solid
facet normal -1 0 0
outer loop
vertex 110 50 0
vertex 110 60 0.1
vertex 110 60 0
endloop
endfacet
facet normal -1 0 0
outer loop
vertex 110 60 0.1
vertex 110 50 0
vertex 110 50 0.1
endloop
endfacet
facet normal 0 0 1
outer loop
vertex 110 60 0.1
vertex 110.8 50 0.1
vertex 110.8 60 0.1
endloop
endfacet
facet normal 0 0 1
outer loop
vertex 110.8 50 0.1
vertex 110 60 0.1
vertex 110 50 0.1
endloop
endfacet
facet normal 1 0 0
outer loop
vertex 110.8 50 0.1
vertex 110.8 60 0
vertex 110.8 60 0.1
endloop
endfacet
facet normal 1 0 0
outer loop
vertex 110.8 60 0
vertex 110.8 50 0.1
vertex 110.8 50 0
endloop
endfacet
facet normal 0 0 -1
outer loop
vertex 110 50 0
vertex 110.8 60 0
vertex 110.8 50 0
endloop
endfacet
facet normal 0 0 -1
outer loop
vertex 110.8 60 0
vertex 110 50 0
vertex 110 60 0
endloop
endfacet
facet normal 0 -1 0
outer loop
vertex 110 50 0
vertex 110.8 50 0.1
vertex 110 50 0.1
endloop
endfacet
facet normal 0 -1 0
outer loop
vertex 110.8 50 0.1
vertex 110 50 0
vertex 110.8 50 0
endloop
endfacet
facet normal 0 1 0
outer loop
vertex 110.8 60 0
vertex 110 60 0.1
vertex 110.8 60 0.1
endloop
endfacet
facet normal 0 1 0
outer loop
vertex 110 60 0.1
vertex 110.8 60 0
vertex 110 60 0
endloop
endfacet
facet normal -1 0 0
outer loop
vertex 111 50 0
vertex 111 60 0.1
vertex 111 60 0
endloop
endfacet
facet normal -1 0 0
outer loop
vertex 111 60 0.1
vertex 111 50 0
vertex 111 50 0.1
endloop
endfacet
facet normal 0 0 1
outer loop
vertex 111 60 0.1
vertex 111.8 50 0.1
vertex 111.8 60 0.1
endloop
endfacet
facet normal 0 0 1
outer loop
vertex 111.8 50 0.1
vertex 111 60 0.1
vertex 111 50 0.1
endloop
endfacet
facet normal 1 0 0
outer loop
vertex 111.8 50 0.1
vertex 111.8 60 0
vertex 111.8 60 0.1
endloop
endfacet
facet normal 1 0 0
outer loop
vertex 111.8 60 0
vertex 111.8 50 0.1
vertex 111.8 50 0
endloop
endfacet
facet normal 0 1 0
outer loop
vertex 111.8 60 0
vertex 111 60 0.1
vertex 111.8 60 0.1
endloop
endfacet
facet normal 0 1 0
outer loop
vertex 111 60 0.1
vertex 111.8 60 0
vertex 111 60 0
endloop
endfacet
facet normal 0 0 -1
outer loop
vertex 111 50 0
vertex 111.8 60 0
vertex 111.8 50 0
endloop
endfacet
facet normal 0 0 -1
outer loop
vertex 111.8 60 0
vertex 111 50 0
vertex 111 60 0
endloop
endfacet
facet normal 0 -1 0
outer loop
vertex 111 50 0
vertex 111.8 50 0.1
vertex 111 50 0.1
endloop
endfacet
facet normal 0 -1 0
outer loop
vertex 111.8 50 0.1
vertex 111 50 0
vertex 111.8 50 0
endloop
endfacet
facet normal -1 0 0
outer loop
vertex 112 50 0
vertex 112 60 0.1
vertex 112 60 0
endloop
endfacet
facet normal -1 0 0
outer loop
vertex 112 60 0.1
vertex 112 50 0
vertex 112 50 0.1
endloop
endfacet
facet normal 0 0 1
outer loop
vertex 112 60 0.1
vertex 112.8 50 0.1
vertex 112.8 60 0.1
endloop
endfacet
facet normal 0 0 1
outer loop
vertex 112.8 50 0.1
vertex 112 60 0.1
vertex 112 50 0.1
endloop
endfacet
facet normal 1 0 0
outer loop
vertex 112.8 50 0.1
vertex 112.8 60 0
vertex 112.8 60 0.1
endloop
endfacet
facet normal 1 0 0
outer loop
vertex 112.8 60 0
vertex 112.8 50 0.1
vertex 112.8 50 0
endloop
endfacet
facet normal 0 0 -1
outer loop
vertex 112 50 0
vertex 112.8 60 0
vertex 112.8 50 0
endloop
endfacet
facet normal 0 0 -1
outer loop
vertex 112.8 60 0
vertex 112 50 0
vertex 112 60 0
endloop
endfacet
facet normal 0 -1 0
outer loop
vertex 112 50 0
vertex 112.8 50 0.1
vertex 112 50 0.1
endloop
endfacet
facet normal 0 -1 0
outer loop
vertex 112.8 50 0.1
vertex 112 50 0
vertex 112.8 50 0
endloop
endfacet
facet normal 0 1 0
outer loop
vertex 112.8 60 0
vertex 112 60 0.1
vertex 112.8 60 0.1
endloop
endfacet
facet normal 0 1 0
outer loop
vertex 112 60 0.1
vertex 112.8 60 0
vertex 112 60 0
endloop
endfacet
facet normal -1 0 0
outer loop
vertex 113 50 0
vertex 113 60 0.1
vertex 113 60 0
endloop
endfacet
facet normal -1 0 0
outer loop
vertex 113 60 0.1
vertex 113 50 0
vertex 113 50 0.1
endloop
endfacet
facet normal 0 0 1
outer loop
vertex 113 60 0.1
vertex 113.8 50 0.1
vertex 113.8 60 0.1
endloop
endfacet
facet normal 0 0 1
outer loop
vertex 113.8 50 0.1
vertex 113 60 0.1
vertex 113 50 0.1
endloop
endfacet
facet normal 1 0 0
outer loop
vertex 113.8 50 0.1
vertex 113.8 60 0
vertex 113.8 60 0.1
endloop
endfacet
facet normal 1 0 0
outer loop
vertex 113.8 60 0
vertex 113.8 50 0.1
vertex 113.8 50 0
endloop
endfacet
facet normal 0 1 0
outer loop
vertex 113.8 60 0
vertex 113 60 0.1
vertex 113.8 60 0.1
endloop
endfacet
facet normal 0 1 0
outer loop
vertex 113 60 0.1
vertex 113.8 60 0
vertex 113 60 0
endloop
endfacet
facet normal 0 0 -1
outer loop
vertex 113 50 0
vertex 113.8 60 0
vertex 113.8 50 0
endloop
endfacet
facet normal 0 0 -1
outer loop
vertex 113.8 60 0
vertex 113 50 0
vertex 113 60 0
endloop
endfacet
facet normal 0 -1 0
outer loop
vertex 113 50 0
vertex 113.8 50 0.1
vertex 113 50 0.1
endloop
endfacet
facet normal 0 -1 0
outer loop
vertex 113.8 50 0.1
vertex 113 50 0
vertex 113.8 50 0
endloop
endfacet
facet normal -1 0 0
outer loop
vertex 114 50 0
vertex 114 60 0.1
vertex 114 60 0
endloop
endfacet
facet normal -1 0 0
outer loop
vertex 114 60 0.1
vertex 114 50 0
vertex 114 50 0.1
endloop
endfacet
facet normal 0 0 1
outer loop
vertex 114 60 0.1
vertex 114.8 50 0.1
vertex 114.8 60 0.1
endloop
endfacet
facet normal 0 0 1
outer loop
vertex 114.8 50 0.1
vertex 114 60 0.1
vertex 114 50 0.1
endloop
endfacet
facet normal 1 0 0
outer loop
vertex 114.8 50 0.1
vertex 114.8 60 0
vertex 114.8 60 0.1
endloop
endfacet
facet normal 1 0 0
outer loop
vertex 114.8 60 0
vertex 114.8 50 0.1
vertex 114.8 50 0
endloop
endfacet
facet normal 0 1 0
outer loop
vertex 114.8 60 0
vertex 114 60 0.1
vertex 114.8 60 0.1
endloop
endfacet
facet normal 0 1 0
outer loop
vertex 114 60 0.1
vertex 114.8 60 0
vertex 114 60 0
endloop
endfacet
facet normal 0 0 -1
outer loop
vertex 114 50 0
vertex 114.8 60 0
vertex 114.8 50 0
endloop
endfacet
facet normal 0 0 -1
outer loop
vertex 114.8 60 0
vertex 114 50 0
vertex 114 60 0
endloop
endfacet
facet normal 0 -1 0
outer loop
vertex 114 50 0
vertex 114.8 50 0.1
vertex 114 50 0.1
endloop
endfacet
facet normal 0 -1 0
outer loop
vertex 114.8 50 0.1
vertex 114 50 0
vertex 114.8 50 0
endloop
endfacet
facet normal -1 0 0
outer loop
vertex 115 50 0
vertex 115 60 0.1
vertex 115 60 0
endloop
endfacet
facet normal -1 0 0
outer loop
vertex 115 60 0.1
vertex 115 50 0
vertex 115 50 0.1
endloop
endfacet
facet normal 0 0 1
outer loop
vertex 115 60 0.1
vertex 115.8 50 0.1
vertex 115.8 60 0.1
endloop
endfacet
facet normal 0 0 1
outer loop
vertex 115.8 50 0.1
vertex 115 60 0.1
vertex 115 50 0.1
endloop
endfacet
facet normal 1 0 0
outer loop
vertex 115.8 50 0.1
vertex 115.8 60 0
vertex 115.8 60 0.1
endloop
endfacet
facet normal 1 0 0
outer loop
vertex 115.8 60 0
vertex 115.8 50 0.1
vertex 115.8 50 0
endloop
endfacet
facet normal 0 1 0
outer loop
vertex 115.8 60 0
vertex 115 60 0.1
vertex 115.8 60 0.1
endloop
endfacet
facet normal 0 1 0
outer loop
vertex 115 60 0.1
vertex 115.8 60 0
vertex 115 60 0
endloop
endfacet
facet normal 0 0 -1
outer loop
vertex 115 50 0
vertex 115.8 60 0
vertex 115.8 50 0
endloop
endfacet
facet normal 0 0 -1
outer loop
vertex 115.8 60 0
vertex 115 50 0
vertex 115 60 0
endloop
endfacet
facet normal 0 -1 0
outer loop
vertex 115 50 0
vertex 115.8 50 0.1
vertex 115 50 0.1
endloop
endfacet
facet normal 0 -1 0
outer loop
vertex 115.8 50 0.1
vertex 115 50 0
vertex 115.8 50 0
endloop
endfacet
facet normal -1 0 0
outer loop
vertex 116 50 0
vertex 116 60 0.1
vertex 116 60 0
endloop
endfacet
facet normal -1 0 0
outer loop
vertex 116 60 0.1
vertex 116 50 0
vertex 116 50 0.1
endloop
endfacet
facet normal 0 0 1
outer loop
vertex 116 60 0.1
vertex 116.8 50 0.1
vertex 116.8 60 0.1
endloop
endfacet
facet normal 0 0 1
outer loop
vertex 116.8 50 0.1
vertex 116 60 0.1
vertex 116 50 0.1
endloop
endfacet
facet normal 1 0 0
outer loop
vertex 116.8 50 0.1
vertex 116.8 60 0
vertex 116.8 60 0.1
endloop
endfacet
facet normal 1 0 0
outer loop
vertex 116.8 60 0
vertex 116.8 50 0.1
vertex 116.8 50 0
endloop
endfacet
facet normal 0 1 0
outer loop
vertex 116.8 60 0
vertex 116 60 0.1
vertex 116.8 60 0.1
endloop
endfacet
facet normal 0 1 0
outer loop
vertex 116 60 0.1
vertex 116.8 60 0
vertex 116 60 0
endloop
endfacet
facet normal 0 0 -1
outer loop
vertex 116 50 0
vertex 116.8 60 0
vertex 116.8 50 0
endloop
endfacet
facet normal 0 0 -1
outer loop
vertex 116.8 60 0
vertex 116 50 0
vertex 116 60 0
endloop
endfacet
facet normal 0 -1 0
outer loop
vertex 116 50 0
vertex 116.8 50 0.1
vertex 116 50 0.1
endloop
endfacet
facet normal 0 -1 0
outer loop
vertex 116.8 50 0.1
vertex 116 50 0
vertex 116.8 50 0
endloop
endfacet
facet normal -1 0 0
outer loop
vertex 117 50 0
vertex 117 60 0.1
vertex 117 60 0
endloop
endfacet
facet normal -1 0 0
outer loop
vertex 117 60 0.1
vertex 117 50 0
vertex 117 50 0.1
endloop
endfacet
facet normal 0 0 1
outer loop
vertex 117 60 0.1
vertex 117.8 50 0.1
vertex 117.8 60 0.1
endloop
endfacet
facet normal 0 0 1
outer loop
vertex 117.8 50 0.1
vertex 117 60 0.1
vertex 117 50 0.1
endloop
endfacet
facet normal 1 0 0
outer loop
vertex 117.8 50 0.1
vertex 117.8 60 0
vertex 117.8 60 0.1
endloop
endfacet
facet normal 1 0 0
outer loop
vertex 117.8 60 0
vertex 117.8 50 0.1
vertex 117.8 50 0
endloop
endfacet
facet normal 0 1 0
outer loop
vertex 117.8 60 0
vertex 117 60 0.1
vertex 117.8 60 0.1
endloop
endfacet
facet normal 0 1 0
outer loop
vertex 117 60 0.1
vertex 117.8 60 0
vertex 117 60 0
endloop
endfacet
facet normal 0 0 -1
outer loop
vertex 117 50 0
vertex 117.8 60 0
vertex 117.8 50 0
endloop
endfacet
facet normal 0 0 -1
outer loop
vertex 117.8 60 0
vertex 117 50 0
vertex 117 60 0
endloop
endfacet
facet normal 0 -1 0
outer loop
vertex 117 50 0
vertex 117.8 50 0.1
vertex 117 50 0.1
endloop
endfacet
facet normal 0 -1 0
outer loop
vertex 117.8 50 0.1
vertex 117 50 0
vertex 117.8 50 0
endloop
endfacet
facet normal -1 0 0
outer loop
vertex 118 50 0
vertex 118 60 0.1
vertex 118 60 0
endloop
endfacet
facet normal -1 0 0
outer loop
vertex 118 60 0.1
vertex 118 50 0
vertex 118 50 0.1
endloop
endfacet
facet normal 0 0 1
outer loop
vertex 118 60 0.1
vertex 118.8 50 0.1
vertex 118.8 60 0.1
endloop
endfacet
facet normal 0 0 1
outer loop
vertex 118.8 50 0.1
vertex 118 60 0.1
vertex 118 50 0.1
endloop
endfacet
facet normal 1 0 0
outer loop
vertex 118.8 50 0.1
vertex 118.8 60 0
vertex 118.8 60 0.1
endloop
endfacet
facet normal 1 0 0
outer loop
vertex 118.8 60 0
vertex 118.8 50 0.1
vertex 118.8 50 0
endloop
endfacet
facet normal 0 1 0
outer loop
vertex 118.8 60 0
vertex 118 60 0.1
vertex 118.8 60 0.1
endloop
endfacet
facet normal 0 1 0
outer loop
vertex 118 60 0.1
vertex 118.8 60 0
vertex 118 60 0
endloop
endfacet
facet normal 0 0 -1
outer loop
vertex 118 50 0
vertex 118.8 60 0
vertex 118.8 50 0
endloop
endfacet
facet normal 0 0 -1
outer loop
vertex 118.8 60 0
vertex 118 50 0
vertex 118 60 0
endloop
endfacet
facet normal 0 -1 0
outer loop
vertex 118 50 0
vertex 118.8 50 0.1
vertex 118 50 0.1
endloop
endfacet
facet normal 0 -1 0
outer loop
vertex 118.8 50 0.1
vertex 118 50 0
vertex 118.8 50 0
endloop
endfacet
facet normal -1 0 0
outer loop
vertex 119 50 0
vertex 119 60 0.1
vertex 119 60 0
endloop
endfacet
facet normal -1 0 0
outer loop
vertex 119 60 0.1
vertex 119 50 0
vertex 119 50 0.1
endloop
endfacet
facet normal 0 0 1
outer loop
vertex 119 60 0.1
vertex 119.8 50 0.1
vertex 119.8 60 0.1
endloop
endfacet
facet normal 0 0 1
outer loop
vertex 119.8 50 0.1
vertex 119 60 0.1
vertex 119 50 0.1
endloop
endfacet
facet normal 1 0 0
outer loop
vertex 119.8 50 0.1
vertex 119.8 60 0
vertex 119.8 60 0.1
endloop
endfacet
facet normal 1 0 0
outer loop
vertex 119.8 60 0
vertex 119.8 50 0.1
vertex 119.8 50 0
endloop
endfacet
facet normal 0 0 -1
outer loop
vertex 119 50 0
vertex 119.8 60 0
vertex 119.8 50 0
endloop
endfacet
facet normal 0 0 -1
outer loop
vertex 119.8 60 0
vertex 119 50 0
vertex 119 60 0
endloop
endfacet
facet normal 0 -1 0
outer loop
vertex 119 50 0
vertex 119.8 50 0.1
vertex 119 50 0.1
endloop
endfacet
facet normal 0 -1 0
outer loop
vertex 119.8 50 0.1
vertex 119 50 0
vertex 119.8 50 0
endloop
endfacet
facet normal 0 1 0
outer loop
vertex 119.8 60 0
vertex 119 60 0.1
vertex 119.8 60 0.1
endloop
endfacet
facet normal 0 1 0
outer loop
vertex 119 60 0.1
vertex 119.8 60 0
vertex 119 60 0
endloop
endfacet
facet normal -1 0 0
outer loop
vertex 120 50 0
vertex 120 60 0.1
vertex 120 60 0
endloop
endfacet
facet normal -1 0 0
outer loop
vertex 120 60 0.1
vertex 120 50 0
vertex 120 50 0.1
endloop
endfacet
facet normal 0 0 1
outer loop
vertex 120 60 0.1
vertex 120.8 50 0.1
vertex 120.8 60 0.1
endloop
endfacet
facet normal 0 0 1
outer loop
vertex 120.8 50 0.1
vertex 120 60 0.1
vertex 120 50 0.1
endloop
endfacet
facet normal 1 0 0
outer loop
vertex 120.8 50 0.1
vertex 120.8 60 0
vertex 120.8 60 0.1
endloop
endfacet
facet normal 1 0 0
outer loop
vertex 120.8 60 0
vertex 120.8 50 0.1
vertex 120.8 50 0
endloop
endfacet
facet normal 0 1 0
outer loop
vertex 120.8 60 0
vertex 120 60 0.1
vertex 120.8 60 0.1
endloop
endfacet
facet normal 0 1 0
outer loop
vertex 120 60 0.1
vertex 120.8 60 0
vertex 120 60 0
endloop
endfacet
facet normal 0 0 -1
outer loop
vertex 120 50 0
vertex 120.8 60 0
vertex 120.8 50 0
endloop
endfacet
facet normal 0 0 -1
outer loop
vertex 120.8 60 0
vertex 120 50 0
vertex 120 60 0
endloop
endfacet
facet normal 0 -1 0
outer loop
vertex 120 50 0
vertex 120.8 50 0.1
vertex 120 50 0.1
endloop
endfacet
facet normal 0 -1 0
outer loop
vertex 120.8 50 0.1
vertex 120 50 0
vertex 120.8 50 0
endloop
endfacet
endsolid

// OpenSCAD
translate([10+100,10+40,0])
        for (i = [0 : 10]){
            translate([i,0,0])
                cube(size = [0.8,10,0.1]);
    }
